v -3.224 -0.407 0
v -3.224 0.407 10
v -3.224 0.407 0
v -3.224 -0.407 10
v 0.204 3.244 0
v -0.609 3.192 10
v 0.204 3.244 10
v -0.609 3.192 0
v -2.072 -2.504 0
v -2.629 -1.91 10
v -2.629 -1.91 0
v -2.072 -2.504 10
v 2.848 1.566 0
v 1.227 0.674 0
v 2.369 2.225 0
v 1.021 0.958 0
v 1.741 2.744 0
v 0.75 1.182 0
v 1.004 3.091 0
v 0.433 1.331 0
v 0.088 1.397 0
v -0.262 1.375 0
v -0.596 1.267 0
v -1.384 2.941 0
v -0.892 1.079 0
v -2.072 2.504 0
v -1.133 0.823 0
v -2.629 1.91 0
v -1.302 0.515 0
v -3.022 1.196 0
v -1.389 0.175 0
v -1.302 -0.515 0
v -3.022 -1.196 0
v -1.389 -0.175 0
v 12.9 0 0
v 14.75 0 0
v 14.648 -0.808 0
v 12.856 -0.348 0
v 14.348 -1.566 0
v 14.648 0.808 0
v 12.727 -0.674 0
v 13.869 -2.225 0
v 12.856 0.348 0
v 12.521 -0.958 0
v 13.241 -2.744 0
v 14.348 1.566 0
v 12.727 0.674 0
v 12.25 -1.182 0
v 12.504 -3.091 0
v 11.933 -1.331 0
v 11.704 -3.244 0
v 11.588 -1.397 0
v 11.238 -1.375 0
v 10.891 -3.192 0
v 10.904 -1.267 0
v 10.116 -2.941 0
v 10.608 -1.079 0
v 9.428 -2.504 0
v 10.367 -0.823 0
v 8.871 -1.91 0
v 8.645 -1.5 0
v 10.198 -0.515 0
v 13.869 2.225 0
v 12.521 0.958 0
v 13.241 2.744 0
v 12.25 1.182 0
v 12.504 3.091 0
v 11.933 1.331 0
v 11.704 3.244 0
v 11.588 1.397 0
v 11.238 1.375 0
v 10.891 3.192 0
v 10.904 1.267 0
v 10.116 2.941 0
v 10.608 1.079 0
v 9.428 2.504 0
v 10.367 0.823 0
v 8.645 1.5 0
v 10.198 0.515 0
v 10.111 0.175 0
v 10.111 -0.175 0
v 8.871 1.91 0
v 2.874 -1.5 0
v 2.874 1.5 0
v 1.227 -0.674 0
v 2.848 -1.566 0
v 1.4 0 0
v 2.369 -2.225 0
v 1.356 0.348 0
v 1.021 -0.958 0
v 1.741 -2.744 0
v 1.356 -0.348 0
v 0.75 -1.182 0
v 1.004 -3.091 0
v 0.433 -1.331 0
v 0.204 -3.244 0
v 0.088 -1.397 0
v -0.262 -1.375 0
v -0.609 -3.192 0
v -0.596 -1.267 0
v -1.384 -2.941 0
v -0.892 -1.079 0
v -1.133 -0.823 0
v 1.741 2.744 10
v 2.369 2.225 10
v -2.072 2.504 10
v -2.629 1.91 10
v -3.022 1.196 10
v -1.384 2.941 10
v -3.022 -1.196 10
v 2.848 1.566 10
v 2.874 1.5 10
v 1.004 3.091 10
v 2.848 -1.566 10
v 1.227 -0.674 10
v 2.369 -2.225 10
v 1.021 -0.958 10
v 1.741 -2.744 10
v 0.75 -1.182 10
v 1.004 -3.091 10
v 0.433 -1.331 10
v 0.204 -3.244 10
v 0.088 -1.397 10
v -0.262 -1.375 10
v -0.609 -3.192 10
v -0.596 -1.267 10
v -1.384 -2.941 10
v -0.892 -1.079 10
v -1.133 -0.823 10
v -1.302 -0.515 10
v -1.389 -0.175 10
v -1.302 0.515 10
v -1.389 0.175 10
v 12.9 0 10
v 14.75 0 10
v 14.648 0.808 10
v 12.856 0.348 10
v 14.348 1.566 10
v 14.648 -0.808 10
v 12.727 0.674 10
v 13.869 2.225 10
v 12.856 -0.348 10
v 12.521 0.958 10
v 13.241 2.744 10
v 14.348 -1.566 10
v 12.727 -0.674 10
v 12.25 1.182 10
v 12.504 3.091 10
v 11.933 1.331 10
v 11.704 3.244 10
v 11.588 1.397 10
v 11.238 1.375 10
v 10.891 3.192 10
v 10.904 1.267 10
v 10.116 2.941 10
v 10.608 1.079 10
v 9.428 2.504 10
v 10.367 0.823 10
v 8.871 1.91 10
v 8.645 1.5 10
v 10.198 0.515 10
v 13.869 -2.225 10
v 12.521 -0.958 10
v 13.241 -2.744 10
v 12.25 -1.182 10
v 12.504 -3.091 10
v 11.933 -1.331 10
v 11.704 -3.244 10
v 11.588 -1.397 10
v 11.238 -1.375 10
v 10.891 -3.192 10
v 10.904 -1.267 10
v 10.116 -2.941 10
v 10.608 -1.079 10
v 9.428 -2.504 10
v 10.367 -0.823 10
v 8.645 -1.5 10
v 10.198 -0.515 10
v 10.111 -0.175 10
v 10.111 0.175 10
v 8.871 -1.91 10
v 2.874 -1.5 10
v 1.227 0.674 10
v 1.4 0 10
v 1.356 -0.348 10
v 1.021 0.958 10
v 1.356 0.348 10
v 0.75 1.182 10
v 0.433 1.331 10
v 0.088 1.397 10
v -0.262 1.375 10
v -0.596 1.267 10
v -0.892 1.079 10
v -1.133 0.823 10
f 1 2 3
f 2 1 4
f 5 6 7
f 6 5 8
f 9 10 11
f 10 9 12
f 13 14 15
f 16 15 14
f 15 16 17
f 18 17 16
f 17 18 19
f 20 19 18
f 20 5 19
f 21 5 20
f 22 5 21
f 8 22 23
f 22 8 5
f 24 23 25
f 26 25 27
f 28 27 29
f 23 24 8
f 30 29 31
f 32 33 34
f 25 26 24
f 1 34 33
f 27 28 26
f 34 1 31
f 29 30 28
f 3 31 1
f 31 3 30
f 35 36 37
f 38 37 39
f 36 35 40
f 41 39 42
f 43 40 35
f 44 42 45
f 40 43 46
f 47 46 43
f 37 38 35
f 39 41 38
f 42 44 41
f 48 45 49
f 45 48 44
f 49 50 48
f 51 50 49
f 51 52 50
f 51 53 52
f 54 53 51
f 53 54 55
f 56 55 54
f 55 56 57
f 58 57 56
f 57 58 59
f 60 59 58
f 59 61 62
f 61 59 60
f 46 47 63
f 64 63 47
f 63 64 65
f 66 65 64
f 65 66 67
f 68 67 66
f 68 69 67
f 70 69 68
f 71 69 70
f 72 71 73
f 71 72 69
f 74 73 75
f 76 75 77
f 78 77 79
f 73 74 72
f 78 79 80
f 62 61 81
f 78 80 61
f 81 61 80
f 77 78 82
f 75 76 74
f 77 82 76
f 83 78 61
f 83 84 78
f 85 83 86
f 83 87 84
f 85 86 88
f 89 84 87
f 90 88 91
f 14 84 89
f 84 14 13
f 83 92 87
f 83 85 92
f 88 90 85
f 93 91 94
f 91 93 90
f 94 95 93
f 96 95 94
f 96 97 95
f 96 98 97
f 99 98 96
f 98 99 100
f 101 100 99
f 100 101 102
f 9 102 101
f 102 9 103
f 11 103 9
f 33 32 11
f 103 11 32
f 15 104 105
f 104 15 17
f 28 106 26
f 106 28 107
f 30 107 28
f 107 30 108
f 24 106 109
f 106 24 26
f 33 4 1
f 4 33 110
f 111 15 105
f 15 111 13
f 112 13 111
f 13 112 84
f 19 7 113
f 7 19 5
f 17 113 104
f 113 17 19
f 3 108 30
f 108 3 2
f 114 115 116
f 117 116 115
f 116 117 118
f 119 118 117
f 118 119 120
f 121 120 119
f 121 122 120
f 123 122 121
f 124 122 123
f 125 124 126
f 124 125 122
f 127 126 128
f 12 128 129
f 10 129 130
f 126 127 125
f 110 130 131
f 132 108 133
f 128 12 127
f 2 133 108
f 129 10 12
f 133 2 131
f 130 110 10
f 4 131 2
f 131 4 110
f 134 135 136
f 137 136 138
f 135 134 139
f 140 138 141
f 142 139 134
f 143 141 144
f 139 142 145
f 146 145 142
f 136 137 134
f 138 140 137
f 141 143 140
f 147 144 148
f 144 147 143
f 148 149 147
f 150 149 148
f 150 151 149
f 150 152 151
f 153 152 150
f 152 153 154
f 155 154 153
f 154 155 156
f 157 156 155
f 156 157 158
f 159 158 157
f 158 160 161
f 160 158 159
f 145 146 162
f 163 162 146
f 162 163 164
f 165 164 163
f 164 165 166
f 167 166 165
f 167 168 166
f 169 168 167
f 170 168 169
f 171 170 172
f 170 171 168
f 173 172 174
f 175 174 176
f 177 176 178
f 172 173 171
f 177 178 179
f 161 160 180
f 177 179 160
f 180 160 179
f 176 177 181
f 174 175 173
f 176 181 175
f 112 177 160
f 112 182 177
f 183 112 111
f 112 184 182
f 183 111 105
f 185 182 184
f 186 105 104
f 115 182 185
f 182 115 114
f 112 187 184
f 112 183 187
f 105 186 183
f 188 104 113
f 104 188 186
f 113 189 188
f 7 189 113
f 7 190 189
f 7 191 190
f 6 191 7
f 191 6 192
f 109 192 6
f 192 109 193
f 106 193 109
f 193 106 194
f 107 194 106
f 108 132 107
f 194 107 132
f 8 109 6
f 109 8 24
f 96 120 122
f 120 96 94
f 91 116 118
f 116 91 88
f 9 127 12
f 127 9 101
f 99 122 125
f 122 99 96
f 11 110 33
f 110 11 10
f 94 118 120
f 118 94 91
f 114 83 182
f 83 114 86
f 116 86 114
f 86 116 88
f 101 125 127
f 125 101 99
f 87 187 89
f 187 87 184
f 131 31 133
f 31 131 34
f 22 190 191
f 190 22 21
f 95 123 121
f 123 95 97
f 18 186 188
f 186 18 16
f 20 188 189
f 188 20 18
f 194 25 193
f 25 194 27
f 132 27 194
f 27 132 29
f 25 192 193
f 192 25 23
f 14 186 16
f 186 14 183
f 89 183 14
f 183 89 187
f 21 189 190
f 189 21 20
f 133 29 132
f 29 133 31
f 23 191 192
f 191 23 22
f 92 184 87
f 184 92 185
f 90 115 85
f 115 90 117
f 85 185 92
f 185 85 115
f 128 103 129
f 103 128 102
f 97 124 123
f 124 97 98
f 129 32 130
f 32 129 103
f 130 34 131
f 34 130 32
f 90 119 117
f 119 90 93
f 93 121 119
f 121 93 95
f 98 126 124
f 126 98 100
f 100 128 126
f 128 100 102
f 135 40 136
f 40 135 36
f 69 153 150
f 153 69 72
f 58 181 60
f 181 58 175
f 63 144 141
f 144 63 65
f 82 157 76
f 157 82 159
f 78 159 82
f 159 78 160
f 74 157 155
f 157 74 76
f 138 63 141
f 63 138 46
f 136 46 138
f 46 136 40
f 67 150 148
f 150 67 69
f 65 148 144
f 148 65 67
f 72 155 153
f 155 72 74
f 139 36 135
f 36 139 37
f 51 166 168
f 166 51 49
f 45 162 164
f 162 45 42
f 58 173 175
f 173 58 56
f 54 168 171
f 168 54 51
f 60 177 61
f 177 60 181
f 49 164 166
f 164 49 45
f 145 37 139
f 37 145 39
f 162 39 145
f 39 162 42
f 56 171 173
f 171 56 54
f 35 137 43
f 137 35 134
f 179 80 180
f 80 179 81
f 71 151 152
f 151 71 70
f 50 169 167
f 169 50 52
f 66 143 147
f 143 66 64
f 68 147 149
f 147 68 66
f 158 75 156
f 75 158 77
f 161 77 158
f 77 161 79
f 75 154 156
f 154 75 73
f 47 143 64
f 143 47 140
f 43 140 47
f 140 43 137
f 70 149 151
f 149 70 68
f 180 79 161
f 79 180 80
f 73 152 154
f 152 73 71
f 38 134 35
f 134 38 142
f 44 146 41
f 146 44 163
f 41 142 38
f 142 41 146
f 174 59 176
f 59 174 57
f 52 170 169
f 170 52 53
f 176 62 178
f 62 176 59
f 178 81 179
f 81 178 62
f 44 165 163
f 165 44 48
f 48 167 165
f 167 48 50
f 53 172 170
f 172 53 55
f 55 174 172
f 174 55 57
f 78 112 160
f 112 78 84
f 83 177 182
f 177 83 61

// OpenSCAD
/*
 * Inspired by the "TinyBoy / Fabrikator mini Cam holder"
 * by "andy_a":
 * http://www.thingiverse.com/thing:1434698
 *
 * Created by:
 * Thomas Buck <xythobuz@xythobuz.de> in April 2016
 *
 * Licensed under the Creative Commons - Attribution license.
 */

height = 10;
wallSize = 3;
length = 5;
screwInner = 2.8;
screwOuter = 6.5;

overlap = (screwOuter - screwInner) / 2;
$fn = 25;

// -----------------------------------------------------------

module screw() {
    difference() {
        cylinder(d = screwOuter, h = height);
        translate([0, 0, -1])
            cylinder(d = screwInner, h = height + 2);
    }
}

// -----------------------------------------------------------

screw();

translate([screwOuter + length, 0, 0])
    screw();

translate([(screwOuter / 2) - overlap, -wallSize / 2, 0])
    cube([length + (2 * overlap), wallSize, height]);
